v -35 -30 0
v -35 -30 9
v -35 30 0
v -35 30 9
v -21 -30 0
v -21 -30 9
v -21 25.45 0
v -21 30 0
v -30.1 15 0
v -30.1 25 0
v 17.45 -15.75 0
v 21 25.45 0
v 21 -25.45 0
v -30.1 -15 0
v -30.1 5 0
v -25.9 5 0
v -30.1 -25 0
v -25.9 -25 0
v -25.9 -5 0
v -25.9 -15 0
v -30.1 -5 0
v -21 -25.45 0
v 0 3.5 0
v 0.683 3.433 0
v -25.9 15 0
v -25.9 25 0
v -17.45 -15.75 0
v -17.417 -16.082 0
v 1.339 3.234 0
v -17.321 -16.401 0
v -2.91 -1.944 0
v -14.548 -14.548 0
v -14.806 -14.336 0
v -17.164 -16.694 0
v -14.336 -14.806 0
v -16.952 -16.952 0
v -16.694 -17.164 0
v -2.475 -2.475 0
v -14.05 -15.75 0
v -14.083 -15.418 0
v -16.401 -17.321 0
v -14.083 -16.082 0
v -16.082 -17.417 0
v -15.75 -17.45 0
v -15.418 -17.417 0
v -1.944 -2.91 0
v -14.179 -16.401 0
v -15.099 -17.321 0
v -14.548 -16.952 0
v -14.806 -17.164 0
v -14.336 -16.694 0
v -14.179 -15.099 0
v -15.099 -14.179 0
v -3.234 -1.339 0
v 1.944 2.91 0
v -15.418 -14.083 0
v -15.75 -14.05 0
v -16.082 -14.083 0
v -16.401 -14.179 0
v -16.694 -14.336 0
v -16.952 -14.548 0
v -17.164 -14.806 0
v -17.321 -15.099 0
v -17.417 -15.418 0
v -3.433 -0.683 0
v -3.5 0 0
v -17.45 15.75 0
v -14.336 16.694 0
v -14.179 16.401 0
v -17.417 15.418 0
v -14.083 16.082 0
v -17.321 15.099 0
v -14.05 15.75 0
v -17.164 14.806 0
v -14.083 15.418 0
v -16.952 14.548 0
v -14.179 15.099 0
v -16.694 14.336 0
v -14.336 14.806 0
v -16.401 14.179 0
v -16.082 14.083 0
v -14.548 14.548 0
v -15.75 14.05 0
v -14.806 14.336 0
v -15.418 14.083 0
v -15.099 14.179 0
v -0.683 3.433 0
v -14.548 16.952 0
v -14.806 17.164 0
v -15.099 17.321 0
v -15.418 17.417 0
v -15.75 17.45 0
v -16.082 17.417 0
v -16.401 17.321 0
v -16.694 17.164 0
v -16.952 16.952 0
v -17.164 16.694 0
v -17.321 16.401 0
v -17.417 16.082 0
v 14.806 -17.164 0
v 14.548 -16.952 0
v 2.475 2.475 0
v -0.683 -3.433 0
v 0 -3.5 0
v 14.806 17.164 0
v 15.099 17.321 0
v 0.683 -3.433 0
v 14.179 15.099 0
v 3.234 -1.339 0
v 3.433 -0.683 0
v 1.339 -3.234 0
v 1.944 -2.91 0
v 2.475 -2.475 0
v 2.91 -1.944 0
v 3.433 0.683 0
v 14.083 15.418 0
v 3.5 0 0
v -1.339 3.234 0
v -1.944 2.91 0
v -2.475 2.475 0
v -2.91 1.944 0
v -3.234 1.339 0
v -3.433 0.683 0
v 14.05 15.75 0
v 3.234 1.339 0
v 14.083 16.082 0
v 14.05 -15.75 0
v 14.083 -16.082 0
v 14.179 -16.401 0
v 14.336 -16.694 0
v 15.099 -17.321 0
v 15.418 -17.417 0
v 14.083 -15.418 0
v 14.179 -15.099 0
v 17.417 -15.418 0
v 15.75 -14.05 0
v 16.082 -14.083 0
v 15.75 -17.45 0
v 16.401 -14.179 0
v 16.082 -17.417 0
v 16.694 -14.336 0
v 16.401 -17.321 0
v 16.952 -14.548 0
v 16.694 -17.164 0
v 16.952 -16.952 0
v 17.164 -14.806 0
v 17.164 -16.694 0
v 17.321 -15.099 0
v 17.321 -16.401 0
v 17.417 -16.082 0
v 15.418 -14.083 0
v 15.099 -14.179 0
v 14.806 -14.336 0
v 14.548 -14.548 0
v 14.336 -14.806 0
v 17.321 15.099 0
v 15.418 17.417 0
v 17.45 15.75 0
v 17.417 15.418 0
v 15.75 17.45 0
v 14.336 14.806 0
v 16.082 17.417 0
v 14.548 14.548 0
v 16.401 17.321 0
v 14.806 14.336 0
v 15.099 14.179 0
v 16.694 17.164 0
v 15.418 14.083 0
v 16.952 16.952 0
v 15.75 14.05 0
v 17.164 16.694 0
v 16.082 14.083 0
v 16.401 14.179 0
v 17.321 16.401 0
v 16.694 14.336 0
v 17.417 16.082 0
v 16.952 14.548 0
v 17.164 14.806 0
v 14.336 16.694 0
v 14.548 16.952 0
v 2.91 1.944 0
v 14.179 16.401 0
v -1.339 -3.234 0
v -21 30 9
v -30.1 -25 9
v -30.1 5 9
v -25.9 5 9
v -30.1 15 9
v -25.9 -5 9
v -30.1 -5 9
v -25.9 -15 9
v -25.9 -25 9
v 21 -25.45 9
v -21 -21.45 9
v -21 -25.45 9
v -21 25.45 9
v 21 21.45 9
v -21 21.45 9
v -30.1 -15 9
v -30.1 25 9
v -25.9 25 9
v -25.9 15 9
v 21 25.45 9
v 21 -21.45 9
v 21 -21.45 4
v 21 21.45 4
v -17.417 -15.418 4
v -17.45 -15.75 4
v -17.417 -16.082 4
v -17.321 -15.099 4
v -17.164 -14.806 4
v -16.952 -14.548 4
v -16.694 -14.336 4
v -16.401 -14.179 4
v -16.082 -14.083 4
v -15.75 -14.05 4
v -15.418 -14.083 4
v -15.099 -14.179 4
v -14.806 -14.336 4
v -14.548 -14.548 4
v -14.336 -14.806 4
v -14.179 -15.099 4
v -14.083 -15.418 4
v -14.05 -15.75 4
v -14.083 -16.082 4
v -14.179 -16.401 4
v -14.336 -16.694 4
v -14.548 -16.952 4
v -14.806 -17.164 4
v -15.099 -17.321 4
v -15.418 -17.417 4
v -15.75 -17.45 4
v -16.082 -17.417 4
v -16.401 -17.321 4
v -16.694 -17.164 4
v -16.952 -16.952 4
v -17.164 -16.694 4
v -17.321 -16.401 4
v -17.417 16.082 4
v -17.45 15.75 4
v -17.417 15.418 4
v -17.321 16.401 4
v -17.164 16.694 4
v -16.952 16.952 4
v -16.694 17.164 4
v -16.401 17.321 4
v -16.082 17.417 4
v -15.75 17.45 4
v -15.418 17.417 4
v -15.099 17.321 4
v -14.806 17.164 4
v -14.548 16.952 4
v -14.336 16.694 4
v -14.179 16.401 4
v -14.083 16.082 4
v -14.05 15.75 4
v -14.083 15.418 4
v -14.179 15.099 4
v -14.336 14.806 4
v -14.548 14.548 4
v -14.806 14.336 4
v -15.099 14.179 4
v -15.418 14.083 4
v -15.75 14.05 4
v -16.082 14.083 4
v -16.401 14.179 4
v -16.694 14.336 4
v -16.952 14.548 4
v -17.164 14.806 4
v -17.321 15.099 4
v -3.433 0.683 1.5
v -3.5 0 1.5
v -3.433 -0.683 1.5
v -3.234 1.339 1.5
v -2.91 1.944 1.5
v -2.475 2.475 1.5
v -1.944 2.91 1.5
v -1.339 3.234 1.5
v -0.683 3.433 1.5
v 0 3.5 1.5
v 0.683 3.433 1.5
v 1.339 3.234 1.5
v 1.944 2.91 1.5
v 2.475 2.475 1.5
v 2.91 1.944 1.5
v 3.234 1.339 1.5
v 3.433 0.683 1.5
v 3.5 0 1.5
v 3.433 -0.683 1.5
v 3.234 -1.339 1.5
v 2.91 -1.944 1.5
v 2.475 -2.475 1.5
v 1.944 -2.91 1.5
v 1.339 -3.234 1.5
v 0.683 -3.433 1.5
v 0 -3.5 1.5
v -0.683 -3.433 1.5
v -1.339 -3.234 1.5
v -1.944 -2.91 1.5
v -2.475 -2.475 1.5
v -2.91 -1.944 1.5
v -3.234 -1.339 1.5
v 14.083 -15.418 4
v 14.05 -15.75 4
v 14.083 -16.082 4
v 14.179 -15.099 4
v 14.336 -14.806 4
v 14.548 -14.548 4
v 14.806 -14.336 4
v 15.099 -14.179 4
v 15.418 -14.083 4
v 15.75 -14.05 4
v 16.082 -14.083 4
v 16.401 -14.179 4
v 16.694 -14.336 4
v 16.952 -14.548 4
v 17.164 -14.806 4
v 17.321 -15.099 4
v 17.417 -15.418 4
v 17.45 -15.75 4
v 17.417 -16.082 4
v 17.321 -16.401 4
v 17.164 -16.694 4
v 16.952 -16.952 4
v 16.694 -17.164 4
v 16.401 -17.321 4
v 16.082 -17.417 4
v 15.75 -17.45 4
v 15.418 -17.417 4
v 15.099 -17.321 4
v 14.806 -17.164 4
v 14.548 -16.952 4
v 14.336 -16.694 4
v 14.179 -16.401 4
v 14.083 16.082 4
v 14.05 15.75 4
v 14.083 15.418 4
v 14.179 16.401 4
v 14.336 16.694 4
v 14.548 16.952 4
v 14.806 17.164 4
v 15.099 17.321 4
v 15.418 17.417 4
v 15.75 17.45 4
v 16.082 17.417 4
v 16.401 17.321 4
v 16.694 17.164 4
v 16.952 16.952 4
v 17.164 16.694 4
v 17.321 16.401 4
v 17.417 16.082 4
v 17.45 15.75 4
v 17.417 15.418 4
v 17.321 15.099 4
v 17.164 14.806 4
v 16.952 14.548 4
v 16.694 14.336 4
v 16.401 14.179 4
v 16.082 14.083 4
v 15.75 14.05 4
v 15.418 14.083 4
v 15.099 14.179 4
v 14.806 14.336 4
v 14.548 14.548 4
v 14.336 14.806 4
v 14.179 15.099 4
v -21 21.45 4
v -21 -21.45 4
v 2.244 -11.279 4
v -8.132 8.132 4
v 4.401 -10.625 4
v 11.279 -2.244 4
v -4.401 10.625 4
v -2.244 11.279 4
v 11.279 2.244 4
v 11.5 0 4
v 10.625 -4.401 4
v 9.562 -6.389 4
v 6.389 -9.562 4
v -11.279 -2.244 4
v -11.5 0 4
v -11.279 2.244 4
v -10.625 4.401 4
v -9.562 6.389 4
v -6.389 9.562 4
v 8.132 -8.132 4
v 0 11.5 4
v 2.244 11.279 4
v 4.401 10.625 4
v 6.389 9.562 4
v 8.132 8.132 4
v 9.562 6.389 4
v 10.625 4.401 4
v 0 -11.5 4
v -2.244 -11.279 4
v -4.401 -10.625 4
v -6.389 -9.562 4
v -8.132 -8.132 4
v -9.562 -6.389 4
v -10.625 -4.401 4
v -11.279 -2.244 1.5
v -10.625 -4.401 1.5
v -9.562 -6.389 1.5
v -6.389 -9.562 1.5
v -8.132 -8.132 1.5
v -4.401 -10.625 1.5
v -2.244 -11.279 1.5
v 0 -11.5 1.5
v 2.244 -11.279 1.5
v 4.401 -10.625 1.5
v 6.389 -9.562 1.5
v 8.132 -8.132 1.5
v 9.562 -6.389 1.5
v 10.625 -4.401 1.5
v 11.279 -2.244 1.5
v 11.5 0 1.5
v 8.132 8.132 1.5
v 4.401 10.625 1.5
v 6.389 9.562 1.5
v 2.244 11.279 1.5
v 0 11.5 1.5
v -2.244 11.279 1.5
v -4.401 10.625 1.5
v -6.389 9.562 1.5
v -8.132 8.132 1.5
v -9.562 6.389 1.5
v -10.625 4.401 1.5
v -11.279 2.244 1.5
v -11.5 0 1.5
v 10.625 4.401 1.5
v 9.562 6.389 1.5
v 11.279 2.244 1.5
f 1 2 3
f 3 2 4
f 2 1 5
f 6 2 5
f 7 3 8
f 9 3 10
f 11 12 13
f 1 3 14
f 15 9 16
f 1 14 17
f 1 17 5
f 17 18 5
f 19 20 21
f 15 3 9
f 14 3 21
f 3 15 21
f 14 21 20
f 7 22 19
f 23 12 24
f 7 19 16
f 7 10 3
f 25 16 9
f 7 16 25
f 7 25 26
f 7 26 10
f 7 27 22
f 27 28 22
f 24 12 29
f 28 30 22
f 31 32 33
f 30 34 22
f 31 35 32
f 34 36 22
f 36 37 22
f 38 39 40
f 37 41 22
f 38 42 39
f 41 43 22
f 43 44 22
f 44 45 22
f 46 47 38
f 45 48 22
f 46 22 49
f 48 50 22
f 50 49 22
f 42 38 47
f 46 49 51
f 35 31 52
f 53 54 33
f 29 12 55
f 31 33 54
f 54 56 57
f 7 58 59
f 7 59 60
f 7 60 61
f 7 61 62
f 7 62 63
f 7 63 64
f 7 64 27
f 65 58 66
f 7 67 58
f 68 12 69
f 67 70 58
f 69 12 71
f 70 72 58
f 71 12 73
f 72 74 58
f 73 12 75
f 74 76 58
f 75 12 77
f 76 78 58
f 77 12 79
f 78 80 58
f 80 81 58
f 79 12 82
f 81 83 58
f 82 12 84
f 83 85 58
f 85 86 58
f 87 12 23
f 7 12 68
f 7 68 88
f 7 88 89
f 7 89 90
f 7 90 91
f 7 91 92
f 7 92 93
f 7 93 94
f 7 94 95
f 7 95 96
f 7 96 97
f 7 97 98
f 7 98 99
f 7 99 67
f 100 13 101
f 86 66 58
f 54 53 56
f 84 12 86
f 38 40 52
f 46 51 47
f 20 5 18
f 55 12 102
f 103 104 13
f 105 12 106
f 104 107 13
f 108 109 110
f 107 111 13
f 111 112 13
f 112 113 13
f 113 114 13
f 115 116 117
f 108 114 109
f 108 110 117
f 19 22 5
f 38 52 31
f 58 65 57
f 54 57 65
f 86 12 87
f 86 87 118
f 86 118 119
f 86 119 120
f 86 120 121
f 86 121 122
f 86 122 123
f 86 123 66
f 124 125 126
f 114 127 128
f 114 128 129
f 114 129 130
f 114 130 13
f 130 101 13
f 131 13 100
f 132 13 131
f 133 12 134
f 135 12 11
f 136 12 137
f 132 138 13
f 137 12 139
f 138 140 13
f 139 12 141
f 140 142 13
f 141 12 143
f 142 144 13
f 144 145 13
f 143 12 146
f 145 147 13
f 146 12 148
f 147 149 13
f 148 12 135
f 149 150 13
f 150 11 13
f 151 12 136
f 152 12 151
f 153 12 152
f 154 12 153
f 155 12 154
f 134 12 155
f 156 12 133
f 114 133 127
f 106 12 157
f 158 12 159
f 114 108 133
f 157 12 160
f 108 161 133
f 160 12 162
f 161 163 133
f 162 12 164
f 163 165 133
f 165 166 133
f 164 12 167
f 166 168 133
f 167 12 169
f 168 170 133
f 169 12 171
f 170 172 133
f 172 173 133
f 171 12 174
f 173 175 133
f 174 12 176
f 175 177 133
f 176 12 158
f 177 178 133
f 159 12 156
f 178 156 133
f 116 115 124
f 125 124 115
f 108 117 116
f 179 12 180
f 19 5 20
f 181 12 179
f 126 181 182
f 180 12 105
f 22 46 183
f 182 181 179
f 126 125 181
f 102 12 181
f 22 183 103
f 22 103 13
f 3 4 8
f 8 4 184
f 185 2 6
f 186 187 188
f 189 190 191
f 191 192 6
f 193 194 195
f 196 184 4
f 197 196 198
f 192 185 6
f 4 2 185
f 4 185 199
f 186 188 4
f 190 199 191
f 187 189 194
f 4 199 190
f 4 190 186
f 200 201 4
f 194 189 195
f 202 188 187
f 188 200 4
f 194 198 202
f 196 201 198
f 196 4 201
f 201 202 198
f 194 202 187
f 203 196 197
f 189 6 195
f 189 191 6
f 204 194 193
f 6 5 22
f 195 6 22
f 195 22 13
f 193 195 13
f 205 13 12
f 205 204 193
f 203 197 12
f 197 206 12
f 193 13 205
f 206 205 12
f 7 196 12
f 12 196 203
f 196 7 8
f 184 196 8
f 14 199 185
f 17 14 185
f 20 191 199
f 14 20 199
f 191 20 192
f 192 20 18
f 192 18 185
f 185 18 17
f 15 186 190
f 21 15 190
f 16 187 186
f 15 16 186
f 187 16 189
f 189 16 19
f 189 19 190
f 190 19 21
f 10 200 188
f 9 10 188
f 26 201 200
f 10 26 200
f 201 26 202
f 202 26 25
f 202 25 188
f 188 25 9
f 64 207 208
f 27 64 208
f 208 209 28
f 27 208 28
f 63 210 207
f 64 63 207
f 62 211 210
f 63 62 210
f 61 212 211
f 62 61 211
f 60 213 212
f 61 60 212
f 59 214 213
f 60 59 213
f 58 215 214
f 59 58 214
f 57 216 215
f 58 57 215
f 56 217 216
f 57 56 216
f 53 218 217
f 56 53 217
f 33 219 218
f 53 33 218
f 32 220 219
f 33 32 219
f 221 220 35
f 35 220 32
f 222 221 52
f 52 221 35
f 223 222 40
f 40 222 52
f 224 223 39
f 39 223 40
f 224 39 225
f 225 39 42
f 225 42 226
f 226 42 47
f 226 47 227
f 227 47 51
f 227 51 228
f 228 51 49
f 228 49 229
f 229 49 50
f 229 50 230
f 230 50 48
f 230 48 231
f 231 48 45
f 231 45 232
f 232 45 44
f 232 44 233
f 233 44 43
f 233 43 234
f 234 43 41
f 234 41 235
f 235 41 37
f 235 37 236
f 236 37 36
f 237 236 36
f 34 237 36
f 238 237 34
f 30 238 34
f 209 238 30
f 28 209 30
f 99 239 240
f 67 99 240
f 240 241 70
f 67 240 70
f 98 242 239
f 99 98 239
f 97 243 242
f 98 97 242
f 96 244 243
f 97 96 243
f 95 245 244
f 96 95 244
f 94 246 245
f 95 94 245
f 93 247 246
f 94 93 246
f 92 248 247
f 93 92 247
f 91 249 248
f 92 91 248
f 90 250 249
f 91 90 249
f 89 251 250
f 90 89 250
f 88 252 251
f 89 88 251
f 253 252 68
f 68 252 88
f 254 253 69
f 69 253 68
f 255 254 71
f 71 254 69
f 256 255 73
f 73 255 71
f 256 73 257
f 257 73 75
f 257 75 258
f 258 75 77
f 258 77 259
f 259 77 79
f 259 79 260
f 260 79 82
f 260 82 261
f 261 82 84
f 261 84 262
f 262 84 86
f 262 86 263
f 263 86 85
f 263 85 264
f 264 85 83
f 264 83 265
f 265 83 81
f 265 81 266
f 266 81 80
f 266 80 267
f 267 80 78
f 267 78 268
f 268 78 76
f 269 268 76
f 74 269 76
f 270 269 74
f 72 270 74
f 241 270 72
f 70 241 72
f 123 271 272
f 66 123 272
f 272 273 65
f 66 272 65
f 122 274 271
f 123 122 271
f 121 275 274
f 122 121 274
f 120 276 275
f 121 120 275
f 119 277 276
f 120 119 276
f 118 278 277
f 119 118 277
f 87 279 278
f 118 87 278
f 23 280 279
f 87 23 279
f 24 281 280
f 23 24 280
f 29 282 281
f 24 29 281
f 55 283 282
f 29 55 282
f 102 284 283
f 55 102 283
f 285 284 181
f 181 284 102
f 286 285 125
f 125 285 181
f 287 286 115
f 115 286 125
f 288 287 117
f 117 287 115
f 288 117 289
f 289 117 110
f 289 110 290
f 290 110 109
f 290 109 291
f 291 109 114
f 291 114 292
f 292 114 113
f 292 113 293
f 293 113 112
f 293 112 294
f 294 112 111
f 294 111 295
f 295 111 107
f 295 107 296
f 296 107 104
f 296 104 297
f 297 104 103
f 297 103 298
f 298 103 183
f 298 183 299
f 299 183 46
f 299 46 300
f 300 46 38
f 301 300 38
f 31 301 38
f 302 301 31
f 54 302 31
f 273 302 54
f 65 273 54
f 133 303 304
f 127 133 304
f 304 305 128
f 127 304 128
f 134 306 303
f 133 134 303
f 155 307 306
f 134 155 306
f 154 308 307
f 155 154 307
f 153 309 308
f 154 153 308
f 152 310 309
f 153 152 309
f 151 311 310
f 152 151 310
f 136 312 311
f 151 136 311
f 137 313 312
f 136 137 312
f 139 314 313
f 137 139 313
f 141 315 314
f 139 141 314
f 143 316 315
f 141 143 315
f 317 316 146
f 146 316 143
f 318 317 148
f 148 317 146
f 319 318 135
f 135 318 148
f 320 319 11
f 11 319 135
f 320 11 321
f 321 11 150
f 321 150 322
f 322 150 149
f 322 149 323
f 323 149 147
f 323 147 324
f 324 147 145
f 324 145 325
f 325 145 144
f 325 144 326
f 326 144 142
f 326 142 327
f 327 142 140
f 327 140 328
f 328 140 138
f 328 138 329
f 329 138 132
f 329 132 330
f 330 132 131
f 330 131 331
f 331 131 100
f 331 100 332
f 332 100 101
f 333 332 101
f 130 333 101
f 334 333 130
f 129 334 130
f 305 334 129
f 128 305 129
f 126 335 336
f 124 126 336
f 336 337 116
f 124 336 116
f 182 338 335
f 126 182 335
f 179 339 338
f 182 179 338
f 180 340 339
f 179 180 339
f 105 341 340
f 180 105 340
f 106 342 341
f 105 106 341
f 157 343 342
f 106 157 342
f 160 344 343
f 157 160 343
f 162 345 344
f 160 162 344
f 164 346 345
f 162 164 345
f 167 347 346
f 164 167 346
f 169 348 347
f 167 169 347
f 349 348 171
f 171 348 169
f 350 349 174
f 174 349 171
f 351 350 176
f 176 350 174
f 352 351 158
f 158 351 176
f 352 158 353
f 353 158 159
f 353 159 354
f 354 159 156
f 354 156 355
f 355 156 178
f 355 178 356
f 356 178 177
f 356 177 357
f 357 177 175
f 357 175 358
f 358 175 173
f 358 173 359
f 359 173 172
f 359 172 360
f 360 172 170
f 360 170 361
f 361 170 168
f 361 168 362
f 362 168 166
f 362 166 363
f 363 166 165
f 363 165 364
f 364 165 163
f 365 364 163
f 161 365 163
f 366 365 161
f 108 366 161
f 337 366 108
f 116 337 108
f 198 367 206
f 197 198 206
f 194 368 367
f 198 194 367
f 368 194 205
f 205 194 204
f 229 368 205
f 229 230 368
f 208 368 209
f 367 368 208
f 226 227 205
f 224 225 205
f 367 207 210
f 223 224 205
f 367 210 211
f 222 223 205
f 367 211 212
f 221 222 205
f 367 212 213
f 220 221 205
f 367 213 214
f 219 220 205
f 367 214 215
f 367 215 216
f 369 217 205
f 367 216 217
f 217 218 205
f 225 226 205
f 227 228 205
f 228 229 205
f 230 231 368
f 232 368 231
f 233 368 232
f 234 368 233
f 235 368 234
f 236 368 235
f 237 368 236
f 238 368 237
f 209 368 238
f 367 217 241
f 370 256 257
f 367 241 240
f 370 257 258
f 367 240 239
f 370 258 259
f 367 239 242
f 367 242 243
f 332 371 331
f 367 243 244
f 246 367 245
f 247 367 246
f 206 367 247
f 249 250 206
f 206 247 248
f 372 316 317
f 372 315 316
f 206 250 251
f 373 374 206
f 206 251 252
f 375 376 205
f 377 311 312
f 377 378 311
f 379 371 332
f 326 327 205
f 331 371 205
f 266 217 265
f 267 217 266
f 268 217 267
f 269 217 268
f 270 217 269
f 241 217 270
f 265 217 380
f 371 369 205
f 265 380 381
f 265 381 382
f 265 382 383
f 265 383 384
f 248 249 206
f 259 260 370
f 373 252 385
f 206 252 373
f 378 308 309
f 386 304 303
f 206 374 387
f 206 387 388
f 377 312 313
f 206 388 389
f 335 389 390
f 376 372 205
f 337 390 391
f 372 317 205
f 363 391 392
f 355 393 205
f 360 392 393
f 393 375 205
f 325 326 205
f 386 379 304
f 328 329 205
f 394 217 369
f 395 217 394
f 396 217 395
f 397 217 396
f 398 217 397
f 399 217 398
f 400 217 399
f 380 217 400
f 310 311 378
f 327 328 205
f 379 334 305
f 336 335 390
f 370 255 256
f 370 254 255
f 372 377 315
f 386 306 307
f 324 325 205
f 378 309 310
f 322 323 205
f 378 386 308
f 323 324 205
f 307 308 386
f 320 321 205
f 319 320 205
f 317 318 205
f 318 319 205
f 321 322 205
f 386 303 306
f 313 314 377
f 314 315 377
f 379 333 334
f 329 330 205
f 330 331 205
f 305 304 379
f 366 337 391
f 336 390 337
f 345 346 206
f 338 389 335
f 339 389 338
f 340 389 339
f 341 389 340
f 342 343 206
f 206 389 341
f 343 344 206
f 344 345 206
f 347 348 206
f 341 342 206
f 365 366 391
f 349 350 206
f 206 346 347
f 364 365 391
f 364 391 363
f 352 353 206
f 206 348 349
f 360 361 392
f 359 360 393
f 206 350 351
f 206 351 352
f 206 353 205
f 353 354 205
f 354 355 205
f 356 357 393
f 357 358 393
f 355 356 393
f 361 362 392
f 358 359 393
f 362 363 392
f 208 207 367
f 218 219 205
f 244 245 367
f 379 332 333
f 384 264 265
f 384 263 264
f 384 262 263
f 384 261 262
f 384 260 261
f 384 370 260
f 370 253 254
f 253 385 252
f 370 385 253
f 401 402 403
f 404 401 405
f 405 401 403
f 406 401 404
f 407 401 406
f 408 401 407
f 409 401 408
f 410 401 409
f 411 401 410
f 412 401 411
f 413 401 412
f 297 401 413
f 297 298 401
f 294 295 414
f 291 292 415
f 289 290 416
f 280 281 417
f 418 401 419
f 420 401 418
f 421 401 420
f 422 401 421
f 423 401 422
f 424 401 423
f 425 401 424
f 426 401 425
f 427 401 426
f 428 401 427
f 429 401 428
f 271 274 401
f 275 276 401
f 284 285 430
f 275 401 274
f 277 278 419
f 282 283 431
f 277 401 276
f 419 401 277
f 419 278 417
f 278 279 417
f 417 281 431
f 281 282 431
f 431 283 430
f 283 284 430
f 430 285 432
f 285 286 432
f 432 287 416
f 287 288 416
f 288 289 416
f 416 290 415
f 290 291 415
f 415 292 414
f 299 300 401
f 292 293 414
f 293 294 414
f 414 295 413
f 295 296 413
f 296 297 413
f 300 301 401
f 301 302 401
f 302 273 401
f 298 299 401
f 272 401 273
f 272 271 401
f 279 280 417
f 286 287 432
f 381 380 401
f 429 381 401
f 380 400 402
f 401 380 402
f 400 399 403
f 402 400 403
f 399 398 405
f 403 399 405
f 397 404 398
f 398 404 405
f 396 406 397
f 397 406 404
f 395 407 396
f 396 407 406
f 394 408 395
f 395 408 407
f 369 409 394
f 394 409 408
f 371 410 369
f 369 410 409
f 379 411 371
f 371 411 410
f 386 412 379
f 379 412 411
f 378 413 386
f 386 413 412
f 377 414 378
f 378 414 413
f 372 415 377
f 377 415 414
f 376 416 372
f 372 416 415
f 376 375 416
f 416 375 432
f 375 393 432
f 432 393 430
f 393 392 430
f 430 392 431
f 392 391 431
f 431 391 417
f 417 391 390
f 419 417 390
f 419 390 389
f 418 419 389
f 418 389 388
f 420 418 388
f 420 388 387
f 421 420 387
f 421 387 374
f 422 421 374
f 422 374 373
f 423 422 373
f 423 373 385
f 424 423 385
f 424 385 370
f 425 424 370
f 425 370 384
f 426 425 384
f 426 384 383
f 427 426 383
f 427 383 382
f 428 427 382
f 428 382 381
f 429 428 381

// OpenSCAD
$fn=32;

difference() {
  translate([-35,-21,0])
  difference() {
    union() {
      translate([0,-0.5,0]) cube([56,43,4]);
      translate([0,0-9,0]) cube([14,60,9]);
    }


    union() {
      translate([35,21,-0.5]) cylinder(5,3.5,3.5);
      translate([35,21,1.5]) cylinder(3,11.5,11.5);
    }
  }

  translate([15.75,15.75,-0.5]) cylinder(5,1.7,1.7);
  translate([-15.75,15.75,-0.5]) cylinder(5,1.7,1.7);
  translate([15.75,-15.75,-0.5]) cylinder(5,1.7,1.7);
  translate([-15.75,-15.75,-0.5]) cylinder(5,1.7,1.7);

  translate([-30.1,-25,-0.5]) cube([4.2,10,10]);
  translate([-30.1,-5,-0.5]) cube([4.2,10,10]);
  translate([-30.1,15,-0.5]) cube([4.2,10,10]);

}

translate([-25,-25.45,0]) cube([46,4,9]);
translate([-25,+21.45,0]) cube([46,4,9]);
